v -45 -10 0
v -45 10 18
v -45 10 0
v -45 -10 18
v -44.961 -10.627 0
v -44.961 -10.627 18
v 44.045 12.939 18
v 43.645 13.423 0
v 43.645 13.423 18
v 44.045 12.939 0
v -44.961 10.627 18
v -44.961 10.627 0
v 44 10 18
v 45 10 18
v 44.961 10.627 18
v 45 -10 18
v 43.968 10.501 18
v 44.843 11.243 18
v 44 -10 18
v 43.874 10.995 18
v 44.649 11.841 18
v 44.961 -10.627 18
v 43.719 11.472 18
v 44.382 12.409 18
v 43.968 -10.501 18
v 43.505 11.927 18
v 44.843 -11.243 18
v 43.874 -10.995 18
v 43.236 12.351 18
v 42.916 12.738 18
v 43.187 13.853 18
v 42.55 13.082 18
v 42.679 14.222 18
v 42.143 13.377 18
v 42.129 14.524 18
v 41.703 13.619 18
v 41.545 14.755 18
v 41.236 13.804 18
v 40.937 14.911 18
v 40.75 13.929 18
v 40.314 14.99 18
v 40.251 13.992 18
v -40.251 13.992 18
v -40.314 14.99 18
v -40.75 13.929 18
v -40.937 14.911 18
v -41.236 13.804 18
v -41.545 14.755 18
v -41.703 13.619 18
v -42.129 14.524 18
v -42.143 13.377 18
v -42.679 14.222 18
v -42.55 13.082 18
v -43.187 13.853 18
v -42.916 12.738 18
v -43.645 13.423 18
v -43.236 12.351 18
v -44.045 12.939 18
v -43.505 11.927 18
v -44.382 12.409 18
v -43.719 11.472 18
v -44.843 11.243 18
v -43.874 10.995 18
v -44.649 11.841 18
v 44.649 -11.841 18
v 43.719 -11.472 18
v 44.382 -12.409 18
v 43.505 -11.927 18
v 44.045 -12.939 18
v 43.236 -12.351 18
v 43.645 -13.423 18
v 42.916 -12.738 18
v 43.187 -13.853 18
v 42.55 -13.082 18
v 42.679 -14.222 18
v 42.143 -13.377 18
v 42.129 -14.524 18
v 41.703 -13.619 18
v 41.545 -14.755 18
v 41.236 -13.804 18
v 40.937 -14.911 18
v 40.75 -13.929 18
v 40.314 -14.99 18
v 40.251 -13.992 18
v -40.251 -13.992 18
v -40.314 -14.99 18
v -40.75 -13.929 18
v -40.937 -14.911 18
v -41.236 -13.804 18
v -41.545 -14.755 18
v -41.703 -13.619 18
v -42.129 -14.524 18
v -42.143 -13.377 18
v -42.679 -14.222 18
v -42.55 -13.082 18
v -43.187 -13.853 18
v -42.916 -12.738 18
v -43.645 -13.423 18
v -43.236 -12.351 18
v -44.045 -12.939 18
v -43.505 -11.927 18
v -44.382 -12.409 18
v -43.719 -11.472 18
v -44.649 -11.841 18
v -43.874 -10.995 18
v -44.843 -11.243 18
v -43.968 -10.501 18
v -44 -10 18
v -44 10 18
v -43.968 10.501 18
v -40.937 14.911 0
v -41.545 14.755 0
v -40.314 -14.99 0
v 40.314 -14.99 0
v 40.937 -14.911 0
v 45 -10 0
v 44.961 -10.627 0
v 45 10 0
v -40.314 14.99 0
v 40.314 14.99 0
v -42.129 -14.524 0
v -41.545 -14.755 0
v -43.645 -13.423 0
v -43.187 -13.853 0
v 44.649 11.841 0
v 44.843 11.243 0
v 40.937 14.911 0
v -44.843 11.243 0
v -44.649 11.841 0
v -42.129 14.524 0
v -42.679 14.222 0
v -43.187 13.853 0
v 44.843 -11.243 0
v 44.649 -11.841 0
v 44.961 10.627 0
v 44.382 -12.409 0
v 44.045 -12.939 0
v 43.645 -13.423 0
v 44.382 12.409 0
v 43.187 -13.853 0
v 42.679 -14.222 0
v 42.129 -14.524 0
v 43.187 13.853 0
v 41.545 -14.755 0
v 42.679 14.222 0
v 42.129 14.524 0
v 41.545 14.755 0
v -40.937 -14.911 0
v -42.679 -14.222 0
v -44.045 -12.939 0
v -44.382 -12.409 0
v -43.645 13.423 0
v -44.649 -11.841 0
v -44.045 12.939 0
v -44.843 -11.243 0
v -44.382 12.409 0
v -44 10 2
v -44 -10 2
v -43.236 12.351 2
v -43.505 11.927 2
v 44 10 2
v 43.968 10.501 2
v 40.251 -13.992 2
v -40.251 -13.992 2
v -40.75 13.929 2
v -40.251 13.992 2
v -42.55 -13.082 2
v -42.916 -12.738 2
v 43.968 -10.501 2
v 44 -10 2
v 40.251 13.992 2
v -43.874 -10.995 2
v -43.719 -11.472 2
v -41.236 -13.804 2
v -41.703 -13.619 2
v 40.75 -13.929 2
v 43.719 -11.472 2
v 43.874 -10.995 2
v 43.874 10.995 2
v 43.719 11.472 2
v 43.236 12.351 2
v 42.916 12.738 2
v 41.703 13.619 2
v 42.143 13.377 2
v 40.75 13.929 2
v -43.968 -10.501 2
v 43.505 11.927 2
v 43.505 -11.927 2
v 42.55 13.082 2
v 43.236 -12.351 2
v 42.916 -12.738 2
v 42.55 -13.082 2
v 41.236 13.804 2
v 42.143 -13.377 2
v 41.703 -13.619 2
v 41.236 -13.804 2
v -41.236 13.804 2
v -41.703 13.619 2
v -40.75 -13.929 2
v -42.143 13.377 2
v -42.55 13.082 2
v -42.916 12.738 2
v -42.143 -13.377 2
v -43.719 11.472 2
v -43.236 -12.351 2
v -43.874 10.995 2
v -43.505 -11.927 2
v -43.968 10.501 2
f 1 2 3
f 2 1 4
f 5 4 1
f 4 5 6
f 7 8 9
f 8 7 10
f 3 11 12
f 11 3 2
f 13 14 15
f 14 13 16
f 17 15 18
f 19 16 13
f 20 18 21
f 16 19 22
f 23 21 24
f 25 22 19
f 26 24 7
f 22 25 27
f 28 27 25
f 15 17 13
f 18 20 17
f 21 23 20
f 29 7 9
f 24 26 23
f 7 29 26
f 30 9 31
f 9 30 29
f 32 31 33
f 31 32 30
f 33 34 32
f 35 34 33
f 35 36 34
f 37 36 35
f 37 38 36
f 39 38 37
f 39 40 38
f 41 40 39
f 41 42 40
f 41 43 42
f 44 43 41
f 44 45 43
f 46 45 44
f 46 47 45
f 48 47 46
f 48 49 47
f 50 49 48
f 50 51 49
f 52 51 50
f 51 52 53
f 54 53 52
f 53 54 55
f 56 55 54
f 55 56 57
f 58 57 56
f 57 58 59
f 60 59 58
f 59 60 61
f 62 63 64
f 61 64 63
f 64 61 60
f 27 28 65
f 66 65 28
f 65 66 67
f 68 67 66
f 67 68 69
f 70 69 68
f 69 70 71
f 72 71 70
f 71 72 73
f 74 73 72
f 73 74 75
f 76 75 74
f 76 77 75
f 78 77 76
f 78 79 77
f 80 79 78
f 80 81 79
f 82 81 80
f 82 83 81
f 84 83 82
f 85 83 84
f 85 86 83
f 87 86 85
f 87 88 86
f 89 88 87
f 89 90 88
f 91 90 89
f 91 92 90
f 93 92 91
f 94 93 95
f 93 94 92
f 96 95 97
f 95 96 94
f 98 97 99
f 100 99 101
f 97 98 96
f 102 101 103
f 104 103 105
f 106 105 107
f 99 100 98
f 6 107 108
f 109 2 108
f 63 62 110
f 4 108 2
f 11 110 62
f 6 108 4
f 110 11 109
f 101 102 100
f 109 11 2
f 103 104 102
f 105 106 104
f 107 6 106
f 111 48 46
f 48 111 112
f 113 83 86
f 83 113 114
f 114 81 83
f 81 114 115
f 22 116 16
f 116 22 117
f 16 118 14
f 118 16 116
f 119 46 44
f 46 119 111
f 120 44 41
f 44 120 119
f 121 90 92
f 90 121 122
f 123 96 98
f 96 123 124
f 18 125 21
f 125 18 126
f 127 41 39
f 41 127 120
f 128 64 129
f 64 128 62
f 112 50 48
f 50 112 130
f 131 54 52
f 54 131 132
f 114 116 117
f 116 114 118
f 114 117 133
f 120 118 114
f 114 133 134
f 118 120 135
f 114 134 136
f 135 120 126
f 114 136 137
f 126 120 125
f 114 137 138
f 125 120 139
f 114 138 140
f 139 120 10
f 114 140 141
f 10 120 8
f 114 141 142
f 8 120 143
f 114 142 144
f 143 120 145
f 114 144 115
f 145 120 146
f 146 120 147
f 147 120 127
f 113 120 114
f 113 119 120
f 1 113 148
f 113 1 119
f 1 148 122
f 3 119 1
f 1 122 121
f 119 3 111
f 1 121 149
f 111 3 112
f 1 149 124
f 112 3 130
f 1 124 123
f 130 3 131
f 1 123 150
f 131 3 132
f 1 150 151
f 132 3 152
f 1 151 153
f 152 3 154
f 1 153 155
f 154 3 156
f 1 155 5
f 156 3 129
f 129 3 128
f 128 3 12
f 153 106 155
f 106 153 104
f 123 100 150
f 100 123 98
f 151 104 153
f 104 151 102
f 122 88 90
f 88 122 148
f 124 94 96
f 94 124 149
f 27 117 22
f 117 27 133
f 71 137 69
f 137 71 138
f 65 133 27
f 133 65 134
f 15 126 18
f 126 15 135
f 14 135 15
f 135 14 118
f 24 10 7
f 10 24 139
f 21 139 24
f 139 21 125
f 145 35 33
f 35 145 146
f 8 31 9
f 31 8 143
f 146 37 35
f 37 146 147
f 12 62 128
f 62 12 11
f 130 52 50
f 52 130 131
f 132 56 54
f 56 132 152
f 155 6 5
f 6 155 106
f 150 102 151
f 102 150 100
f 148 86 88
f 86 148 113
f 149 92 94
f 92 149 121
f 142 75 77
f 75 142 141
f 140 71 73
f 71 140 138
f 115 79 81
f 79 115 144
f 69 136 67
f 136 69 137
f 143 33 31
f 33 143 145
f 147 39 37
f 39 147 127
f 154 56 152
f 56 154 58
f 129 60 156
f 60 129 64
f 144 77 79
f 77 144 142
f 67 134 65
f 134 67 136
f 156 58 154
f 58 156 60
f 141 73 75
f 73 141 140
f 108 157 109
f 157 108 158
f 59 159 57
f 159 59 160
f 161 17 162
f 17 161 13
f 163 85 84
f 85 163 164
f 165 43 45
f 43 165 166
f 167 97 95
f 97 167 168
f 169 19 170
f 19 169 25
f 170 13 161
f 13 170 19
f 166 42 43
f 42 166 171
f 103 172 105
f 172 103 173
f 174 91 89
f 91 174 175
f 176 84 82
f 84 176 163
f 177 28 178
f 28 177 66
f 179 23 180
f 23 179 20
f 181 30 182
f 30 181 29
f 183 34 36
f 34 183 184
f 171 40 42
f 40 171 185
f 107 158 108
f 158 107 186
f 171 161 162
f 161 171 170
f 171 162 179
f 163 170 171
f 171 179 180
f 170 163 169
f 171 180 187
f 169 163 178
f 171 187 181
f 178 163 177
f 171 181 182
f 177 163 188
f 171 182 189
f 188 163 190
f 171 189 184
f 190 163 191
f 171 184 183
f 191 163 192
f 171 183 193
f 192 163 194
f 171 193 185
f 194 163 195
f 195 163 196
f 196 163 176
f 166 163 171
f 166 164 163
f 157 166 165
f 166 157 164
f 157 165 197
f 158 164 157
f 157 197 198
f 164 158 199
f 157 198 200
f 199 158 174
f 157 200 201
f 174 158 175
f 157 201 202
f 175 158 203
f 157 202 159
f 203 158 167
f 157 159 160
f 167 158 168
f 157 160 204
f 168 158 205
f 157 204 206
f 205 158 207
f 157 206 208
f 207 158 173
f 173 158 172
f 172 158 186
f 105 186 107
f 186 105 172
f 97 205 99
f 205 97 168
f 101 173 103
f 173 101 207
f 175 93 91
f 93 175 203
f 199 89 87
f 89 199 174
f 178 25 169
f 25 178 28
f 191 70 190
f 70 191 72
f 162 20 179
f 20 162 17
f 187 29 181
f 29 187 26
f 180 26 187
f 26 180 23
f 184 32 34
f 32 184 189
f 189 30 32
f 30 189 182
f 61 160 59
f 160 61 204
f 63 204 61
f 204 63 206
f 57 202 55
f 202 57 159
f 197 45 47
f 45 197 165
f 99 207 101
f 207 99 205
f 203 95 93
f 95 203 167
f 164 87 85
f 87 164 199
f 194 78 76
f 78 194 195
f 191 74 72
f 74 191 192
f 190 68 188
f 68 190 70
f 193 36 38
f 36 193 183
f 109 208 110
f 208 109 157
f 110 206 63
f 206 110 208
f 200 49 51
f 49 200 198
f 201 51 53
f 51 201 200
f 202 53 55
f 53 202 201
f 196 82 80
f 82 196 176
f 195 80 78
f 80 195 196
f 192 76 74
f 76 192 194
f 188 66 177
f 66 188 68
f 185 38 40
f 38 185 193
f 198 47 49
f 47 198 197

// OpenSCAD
$fn = 50;


difference() {
	union() {
		hull() {
			translate(v = [-40.0000000000, 10.0000000000, 0]) {
				cylinder(h = 18, r = 5);
			}
			translate(v = [40.0000000000, 10.0000000000, 0]) {
				cylinder(h = 18, r = 5);
			}
			translate(v = [-40.0000000000, -10.0000000000, 0]) {
				cylinder(h = 18, r = 5);
			}
			translate(v = [40.0000000000, -10.0000000000, 0]) {
				cylinder(h = 18, r = 5);
			}
		}
	}
	union() {
		translate(v = [0, 0, 2]) {
			#hull() {
				translate(v = [-40.0000000000, 10.0000000000, 0]) {
					cylinder(h = 16, r = 4);
				}
				translate(v = [40.0000000000, 10.0000000000, 0]) {
					cylinder(h = 16, r = 4);
				}
				translate(v = [-40.0000000000, -10.0000000000, 0]) {
					cylinder(h = 16, r = 4);
				}
				translate(v = [40.0000000000, -10.0000000000, 0]) {
					cylinder(h = 16, r = 4);
				}
			}
		}
	}
}
